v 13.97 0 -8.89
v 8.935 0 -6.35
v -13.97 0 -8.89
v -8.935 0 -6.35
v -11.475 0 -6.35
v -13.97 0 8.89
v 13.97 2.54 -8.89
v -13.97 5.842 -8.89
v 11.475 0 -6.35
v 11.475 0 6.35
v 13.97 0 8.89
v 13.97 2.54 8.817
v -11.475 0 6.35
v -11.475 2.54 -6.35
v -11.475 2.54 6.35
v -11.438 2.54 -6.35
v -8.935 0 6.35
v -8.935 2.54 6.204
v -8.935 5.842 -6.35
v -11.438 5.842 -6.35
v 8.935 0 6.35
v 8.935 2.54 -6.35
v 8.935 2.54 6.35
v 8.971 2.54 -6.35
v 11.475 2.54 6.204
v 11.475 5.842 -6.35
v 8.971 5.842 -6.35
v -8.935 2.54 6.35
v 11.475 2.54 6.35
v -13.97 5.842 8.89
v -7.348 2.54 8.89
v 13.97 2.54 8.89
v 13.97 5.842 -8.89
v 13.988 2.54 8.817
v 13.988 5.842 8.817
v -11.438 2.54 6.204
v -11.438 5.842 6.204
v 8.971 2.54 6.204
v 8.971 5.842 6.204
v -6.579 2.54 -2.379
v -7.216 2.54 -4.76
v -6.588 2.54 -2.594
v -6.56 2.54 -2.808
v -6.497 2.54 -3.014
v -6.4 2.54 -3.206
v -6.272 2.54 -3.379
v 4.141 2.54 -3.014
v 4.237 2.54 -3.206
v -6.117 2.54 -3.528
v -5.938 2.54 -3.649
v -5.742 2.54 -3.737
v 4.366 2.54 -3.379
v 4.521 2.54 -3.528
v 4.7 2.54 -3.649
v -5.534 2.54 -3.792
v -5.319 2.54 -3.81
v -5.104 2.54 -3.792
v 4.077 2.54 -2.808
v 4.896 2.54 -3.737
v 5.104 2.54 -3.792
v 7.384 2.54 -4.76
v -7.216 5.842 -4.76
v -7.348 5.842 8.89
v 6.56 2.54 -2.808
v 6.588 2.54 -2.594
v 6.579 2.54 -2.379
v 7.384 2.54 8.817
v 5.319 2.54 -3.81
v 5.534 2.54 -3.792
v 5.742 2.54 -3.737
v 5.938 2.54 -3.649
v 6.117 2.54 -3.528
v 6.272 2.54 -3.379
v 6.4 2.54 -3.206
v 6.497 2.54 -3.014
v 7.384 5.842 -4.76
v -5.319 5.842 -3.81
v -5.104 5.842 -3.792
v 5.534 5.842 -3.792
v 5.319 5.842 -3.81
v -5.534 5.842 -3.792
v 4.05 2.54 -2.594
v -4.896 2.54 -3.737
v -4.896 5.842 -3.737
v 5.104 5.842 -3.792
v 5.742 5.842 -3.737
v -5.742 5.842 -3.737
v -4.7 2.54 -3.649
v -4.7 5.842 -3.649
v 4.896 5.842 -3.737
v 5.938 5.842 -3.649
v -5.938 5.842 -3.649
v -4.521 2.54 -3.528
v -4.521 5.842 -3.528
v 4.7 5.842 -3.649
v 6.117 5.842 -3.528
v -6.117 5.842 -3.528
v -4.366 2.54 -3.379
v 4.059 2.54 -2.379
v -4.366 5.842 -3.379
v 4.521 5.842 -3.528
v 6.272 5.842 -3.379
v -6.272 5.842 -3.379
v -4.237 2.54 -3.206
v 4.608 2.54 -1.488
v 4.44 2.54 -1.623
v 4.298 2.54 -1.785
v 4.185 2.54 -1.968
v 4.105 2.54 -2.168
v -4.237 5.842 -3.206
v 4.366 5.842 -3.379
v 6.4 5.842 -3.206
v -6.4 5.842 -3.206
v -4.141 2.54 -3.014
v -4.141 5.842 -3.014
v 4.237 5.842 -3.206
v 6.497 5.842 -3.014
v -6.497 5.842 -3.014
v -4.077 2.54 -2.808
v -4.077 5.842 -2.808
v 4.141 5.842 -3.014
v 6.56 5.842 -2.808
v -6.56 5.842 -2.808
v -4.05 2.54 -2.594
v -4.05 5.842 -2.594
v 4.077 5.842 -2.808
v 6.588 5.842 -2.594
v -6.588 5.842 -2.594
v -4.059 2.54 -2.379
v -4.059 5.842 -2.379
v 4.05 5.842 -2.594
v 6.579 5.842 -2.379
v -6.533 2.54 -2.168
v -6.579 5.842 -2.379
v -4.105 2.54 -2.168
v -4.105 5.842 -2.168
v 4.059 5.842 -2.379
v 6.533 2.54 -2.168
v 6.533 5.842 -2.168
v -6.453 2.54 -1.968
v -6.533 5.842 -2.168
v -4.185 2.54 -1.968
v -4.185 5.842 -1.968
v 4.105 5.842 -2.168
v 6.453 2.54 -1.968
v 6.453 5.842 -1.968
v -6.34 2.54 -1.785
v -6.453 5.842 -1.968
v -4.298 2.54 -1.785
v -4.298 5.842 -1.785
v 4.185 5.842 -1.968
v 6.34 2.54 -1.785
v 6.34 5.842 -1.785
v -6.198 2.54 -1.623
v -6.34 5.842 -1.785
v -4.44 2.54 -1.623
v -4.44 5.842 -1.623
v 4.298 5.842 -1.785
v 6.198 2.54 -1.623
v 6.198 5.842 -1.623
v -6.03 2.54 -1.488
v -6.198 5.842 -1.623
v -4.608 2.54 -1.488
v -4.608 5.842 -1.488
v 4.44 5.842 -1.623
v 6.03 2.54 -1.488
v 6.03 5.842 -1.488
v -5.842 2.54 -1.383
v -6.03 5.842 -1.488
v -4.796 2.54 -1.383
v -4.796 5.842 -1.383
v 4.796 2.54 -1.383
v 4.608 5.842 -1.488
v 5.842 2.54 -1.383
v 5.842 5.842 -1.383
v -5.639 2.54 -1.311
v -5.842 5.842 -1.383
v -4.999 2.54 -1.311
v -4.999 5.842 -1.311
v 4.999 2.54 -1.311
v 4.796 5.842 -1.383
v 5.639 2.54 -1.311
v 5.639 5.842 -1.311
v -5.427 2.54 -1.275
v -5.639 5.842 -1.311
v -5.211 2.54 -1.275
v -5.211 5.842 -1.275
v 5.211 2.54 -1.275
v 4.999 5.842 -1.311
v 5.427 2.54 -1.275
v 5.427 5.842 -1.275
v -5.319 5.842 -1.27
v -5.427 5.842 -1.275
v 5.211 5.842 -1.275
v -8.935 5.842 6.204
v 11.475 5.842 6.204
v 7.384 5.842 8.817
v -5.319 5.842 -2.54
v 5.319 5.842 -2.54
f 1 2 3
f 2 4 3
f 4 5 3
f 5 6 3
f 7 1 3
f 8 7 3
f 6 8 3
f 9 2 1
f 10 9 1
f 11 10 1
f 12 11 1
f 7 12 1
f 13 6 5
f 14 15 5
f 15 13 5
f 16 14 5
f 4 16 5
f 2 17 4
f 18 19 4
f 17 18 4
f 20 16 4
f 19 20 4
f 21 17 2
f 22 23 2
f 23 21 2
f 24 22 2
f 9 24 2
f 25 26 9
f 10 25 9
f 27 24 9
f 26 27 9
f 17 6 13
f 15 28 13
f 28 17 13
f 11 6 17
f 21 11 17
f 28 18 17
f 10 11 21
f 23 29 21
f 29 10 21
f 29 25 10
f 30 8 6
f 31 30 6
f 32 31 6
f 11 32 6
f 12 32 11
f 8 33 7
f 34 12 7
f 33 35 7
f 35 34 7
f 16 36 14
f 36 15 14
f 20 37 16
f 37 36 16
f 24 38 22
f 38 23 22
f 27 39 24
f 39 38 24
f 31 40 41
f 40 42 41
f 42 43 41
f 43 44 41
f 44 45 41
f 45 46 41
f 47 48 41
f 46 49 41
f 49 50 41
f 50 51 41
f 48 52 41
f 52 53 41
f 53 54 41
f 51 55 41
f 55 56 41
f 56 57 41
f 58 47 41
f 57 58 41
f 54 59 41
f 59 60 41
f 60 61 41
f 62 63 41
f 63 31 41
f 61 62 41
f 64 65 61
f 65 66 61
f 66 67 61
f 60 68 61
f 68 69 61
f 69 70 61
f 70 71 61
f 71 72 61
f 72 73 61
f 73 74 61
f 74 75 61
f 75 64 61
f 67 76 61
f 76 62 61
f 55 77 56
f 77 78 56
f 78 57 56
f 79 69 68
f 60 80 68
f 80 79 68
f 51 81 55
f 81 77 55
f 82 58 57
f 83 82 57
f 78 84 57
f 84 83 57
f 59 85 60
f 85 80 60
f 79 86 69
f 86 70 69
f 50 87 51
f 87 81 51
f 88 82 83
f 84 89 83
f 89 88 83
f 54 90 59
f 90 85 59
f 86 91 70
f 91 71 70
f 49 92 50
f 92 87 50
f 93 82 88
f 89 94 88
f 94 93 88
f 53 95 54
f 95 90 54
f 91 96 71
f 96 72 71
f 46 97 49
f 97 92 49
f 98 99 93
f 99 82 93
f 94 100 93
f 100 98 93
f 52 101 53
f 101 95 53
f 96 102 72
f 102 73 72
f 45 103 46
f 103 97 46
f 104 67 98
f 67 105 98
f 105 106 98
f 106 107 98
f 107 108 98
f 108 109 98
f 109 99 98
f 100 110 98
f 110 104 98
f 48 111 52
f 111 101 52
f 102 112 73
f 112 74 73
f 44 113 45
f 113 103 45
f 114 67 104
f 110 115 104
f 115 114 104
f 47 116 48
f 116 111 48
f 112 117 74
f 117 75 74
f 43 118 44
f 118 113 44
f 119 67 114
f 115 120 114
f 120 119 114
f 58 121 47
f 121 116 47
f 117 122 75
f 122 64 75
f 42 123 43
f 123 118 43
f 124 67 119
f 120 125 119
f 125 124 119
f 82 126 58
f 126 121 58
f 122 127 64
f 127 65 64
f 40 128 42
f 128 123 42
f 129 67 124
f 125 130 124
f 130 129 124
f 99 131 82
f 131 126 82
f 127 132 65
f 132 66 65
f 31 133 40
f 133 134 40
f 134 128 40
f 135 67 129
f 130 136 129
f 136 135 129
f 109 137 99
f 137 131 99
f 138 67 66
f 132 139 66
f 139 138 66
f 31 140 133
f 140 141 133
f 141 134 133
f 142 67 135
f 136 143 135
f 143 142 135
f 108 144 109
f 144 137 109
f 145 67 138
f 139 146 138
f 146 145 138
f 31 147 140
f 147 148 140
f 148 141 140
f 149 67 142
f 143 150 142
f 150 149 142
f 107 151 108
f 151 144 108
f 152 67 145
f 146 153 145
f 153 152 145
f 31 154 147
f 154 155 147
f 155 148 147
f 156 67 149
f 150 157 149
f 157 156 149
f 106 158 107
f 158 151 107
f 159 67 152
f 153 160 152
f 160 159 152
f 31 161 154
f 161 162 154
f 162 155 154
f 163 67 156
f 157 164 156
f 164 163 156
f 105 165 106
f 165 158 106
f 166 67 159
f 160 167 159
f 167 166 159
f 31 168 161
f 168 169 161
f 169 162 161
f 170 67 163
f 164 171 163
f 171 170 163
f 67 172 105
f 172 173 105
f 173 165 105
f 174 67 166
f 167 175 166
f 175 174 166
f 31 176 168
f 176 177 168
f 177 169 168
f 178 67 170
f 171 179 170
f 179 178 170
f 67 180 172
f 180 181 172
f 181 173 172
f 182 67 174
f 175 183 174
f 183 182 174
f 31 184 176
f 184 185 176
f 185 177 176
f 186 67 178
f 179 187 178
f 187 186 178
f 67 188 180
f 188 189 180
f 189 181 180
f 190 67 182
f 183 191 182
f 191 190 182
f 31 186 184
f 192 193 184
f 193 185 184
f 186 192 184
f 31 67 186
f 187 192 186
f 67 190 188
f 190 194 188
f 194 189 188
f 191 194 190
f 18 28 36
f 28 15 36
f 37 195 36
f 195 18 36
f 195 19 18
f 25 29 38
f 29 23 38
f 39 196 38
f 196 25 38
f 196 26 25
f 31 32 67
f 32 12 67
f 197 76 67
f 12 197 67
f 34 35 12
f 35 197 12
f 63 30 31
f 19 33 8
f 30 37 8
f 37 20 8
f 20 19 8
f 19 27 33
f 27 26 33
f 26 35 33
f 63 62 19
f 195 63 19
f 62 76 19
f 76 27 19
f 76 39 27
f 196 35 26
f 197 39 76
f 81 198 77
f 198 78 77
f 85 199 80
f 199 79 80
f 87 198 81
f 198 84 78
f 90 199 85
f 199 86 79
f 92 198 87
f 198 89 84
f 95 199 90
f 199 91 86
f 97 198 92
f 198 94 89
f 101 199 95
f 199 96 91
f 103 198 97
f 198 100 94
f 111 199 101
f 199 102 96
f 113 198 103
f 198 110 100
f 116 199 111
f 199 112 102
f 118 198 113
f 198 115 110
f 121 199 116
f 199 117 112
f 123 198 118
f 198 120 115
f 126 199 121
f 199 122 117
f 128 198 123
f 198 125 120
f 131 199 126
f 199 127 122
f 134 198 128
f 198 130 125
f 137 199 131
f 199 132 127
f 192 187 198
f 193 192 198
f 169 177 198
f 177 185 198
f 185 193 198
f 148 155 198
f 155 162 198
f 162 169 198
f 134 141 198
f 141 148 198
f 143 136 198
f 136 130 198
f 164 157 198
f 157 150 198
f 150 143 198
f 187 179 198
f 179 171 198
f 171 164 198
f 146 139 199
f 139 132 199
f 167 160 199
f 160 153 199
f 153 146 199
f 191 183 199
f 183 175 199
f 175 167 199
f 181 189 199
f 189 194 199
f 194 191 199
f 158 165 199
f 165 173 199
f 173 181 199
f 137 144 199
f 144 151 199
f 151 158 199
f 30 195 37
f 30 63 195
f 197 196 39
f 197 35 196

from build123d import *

# Parameters (mm, degrees)
SKETCH1_W           = 27.94
SKETCH1_H           = 17.78
SKETCH1_W_2         = 2.54
SKETCH1_H_2         = 12.7
BOSS_EXTRUDE2_DEPTH = 2.54
SKETCH3_R           = 1.27
BOSS_EXTRUDE3_DEPTH = 3.302
SKETCH6_W           = 2.503557337
SKETCH6_H           = 12.554229347
BOSS_EXTRUDE6_DEPTH = 3.302


with BuildPart() as part:
    # Sketch1 → Boss-Extrude2 (new body)
    with BuildSketch(Plane(origin=(0, 0, 0), x_dir=(1, 0, 0), z_dir=(0, 1, 0))):
        Rectangle(SKETCH1_W, SKETCH1_H)
        with Locations((-10.20489899, 0)):
            Rectangle(SKETCH1_W_2, SKETCH1_H_2, mode=Mode.SUBTRACT)
        with Locations((10.20489899, 0)):
            Rectangle(SKETCH1_W_2, SKETCH1_H_2, mode=Mode.SUBTRACT)
    extrude(amount=BOSS_EXTRUDE2_DEPTH)

    # Sketch3 → Boss-Extrude3 (add)
    with BuildSketch(Plane(origin=(0, 2.54, 0), x_dir=(1, 0, 0), z_dir=(0, 1, 0))):
        with Locations(Location((-5.318941048, 2.54, 0), (0, 0, 90))):
            Circle(SKETCH3_R)
        with Locations(Location((5.318941048, 2.54, 0), (0, 0, 90))):
            Circle(SKETCH3_R)
    extrude(amount=BOSS_EXTRUDE3_DEPTH)

    # Sketch6 → Boss-Extrude6 (add)
    with BuildSketch(Plane(origin=(0, 2.54, 0), x_dir=(1, 0, 0), z_dir=(0, 1, 0))):
        Polygon((-7.215647318, 4.760339872), (7.384221332, 4.760339872), (7.384221332, -8.817114674), (13.988221332, -8.817114674), (13.97, 8.89), (-13.97, 8.89), (-13.97, -8.89), (-7.347778668, -8.89), align=None)
        with Locations((10.223120322, 0.072885327)):
            Rectangle(SKETCH6_W, SKETCH6_H, mode=Mode.SUBTRACT)
        with Locations((-10.186677659, 0.072885327)):
            Rectangle(SKETCH6_W, SKETCH6_H, mode=Mode.SUBTRACT)
    extrude(amount=BOSS_EXTRUDE6_DEPTH)


solid = part.part
